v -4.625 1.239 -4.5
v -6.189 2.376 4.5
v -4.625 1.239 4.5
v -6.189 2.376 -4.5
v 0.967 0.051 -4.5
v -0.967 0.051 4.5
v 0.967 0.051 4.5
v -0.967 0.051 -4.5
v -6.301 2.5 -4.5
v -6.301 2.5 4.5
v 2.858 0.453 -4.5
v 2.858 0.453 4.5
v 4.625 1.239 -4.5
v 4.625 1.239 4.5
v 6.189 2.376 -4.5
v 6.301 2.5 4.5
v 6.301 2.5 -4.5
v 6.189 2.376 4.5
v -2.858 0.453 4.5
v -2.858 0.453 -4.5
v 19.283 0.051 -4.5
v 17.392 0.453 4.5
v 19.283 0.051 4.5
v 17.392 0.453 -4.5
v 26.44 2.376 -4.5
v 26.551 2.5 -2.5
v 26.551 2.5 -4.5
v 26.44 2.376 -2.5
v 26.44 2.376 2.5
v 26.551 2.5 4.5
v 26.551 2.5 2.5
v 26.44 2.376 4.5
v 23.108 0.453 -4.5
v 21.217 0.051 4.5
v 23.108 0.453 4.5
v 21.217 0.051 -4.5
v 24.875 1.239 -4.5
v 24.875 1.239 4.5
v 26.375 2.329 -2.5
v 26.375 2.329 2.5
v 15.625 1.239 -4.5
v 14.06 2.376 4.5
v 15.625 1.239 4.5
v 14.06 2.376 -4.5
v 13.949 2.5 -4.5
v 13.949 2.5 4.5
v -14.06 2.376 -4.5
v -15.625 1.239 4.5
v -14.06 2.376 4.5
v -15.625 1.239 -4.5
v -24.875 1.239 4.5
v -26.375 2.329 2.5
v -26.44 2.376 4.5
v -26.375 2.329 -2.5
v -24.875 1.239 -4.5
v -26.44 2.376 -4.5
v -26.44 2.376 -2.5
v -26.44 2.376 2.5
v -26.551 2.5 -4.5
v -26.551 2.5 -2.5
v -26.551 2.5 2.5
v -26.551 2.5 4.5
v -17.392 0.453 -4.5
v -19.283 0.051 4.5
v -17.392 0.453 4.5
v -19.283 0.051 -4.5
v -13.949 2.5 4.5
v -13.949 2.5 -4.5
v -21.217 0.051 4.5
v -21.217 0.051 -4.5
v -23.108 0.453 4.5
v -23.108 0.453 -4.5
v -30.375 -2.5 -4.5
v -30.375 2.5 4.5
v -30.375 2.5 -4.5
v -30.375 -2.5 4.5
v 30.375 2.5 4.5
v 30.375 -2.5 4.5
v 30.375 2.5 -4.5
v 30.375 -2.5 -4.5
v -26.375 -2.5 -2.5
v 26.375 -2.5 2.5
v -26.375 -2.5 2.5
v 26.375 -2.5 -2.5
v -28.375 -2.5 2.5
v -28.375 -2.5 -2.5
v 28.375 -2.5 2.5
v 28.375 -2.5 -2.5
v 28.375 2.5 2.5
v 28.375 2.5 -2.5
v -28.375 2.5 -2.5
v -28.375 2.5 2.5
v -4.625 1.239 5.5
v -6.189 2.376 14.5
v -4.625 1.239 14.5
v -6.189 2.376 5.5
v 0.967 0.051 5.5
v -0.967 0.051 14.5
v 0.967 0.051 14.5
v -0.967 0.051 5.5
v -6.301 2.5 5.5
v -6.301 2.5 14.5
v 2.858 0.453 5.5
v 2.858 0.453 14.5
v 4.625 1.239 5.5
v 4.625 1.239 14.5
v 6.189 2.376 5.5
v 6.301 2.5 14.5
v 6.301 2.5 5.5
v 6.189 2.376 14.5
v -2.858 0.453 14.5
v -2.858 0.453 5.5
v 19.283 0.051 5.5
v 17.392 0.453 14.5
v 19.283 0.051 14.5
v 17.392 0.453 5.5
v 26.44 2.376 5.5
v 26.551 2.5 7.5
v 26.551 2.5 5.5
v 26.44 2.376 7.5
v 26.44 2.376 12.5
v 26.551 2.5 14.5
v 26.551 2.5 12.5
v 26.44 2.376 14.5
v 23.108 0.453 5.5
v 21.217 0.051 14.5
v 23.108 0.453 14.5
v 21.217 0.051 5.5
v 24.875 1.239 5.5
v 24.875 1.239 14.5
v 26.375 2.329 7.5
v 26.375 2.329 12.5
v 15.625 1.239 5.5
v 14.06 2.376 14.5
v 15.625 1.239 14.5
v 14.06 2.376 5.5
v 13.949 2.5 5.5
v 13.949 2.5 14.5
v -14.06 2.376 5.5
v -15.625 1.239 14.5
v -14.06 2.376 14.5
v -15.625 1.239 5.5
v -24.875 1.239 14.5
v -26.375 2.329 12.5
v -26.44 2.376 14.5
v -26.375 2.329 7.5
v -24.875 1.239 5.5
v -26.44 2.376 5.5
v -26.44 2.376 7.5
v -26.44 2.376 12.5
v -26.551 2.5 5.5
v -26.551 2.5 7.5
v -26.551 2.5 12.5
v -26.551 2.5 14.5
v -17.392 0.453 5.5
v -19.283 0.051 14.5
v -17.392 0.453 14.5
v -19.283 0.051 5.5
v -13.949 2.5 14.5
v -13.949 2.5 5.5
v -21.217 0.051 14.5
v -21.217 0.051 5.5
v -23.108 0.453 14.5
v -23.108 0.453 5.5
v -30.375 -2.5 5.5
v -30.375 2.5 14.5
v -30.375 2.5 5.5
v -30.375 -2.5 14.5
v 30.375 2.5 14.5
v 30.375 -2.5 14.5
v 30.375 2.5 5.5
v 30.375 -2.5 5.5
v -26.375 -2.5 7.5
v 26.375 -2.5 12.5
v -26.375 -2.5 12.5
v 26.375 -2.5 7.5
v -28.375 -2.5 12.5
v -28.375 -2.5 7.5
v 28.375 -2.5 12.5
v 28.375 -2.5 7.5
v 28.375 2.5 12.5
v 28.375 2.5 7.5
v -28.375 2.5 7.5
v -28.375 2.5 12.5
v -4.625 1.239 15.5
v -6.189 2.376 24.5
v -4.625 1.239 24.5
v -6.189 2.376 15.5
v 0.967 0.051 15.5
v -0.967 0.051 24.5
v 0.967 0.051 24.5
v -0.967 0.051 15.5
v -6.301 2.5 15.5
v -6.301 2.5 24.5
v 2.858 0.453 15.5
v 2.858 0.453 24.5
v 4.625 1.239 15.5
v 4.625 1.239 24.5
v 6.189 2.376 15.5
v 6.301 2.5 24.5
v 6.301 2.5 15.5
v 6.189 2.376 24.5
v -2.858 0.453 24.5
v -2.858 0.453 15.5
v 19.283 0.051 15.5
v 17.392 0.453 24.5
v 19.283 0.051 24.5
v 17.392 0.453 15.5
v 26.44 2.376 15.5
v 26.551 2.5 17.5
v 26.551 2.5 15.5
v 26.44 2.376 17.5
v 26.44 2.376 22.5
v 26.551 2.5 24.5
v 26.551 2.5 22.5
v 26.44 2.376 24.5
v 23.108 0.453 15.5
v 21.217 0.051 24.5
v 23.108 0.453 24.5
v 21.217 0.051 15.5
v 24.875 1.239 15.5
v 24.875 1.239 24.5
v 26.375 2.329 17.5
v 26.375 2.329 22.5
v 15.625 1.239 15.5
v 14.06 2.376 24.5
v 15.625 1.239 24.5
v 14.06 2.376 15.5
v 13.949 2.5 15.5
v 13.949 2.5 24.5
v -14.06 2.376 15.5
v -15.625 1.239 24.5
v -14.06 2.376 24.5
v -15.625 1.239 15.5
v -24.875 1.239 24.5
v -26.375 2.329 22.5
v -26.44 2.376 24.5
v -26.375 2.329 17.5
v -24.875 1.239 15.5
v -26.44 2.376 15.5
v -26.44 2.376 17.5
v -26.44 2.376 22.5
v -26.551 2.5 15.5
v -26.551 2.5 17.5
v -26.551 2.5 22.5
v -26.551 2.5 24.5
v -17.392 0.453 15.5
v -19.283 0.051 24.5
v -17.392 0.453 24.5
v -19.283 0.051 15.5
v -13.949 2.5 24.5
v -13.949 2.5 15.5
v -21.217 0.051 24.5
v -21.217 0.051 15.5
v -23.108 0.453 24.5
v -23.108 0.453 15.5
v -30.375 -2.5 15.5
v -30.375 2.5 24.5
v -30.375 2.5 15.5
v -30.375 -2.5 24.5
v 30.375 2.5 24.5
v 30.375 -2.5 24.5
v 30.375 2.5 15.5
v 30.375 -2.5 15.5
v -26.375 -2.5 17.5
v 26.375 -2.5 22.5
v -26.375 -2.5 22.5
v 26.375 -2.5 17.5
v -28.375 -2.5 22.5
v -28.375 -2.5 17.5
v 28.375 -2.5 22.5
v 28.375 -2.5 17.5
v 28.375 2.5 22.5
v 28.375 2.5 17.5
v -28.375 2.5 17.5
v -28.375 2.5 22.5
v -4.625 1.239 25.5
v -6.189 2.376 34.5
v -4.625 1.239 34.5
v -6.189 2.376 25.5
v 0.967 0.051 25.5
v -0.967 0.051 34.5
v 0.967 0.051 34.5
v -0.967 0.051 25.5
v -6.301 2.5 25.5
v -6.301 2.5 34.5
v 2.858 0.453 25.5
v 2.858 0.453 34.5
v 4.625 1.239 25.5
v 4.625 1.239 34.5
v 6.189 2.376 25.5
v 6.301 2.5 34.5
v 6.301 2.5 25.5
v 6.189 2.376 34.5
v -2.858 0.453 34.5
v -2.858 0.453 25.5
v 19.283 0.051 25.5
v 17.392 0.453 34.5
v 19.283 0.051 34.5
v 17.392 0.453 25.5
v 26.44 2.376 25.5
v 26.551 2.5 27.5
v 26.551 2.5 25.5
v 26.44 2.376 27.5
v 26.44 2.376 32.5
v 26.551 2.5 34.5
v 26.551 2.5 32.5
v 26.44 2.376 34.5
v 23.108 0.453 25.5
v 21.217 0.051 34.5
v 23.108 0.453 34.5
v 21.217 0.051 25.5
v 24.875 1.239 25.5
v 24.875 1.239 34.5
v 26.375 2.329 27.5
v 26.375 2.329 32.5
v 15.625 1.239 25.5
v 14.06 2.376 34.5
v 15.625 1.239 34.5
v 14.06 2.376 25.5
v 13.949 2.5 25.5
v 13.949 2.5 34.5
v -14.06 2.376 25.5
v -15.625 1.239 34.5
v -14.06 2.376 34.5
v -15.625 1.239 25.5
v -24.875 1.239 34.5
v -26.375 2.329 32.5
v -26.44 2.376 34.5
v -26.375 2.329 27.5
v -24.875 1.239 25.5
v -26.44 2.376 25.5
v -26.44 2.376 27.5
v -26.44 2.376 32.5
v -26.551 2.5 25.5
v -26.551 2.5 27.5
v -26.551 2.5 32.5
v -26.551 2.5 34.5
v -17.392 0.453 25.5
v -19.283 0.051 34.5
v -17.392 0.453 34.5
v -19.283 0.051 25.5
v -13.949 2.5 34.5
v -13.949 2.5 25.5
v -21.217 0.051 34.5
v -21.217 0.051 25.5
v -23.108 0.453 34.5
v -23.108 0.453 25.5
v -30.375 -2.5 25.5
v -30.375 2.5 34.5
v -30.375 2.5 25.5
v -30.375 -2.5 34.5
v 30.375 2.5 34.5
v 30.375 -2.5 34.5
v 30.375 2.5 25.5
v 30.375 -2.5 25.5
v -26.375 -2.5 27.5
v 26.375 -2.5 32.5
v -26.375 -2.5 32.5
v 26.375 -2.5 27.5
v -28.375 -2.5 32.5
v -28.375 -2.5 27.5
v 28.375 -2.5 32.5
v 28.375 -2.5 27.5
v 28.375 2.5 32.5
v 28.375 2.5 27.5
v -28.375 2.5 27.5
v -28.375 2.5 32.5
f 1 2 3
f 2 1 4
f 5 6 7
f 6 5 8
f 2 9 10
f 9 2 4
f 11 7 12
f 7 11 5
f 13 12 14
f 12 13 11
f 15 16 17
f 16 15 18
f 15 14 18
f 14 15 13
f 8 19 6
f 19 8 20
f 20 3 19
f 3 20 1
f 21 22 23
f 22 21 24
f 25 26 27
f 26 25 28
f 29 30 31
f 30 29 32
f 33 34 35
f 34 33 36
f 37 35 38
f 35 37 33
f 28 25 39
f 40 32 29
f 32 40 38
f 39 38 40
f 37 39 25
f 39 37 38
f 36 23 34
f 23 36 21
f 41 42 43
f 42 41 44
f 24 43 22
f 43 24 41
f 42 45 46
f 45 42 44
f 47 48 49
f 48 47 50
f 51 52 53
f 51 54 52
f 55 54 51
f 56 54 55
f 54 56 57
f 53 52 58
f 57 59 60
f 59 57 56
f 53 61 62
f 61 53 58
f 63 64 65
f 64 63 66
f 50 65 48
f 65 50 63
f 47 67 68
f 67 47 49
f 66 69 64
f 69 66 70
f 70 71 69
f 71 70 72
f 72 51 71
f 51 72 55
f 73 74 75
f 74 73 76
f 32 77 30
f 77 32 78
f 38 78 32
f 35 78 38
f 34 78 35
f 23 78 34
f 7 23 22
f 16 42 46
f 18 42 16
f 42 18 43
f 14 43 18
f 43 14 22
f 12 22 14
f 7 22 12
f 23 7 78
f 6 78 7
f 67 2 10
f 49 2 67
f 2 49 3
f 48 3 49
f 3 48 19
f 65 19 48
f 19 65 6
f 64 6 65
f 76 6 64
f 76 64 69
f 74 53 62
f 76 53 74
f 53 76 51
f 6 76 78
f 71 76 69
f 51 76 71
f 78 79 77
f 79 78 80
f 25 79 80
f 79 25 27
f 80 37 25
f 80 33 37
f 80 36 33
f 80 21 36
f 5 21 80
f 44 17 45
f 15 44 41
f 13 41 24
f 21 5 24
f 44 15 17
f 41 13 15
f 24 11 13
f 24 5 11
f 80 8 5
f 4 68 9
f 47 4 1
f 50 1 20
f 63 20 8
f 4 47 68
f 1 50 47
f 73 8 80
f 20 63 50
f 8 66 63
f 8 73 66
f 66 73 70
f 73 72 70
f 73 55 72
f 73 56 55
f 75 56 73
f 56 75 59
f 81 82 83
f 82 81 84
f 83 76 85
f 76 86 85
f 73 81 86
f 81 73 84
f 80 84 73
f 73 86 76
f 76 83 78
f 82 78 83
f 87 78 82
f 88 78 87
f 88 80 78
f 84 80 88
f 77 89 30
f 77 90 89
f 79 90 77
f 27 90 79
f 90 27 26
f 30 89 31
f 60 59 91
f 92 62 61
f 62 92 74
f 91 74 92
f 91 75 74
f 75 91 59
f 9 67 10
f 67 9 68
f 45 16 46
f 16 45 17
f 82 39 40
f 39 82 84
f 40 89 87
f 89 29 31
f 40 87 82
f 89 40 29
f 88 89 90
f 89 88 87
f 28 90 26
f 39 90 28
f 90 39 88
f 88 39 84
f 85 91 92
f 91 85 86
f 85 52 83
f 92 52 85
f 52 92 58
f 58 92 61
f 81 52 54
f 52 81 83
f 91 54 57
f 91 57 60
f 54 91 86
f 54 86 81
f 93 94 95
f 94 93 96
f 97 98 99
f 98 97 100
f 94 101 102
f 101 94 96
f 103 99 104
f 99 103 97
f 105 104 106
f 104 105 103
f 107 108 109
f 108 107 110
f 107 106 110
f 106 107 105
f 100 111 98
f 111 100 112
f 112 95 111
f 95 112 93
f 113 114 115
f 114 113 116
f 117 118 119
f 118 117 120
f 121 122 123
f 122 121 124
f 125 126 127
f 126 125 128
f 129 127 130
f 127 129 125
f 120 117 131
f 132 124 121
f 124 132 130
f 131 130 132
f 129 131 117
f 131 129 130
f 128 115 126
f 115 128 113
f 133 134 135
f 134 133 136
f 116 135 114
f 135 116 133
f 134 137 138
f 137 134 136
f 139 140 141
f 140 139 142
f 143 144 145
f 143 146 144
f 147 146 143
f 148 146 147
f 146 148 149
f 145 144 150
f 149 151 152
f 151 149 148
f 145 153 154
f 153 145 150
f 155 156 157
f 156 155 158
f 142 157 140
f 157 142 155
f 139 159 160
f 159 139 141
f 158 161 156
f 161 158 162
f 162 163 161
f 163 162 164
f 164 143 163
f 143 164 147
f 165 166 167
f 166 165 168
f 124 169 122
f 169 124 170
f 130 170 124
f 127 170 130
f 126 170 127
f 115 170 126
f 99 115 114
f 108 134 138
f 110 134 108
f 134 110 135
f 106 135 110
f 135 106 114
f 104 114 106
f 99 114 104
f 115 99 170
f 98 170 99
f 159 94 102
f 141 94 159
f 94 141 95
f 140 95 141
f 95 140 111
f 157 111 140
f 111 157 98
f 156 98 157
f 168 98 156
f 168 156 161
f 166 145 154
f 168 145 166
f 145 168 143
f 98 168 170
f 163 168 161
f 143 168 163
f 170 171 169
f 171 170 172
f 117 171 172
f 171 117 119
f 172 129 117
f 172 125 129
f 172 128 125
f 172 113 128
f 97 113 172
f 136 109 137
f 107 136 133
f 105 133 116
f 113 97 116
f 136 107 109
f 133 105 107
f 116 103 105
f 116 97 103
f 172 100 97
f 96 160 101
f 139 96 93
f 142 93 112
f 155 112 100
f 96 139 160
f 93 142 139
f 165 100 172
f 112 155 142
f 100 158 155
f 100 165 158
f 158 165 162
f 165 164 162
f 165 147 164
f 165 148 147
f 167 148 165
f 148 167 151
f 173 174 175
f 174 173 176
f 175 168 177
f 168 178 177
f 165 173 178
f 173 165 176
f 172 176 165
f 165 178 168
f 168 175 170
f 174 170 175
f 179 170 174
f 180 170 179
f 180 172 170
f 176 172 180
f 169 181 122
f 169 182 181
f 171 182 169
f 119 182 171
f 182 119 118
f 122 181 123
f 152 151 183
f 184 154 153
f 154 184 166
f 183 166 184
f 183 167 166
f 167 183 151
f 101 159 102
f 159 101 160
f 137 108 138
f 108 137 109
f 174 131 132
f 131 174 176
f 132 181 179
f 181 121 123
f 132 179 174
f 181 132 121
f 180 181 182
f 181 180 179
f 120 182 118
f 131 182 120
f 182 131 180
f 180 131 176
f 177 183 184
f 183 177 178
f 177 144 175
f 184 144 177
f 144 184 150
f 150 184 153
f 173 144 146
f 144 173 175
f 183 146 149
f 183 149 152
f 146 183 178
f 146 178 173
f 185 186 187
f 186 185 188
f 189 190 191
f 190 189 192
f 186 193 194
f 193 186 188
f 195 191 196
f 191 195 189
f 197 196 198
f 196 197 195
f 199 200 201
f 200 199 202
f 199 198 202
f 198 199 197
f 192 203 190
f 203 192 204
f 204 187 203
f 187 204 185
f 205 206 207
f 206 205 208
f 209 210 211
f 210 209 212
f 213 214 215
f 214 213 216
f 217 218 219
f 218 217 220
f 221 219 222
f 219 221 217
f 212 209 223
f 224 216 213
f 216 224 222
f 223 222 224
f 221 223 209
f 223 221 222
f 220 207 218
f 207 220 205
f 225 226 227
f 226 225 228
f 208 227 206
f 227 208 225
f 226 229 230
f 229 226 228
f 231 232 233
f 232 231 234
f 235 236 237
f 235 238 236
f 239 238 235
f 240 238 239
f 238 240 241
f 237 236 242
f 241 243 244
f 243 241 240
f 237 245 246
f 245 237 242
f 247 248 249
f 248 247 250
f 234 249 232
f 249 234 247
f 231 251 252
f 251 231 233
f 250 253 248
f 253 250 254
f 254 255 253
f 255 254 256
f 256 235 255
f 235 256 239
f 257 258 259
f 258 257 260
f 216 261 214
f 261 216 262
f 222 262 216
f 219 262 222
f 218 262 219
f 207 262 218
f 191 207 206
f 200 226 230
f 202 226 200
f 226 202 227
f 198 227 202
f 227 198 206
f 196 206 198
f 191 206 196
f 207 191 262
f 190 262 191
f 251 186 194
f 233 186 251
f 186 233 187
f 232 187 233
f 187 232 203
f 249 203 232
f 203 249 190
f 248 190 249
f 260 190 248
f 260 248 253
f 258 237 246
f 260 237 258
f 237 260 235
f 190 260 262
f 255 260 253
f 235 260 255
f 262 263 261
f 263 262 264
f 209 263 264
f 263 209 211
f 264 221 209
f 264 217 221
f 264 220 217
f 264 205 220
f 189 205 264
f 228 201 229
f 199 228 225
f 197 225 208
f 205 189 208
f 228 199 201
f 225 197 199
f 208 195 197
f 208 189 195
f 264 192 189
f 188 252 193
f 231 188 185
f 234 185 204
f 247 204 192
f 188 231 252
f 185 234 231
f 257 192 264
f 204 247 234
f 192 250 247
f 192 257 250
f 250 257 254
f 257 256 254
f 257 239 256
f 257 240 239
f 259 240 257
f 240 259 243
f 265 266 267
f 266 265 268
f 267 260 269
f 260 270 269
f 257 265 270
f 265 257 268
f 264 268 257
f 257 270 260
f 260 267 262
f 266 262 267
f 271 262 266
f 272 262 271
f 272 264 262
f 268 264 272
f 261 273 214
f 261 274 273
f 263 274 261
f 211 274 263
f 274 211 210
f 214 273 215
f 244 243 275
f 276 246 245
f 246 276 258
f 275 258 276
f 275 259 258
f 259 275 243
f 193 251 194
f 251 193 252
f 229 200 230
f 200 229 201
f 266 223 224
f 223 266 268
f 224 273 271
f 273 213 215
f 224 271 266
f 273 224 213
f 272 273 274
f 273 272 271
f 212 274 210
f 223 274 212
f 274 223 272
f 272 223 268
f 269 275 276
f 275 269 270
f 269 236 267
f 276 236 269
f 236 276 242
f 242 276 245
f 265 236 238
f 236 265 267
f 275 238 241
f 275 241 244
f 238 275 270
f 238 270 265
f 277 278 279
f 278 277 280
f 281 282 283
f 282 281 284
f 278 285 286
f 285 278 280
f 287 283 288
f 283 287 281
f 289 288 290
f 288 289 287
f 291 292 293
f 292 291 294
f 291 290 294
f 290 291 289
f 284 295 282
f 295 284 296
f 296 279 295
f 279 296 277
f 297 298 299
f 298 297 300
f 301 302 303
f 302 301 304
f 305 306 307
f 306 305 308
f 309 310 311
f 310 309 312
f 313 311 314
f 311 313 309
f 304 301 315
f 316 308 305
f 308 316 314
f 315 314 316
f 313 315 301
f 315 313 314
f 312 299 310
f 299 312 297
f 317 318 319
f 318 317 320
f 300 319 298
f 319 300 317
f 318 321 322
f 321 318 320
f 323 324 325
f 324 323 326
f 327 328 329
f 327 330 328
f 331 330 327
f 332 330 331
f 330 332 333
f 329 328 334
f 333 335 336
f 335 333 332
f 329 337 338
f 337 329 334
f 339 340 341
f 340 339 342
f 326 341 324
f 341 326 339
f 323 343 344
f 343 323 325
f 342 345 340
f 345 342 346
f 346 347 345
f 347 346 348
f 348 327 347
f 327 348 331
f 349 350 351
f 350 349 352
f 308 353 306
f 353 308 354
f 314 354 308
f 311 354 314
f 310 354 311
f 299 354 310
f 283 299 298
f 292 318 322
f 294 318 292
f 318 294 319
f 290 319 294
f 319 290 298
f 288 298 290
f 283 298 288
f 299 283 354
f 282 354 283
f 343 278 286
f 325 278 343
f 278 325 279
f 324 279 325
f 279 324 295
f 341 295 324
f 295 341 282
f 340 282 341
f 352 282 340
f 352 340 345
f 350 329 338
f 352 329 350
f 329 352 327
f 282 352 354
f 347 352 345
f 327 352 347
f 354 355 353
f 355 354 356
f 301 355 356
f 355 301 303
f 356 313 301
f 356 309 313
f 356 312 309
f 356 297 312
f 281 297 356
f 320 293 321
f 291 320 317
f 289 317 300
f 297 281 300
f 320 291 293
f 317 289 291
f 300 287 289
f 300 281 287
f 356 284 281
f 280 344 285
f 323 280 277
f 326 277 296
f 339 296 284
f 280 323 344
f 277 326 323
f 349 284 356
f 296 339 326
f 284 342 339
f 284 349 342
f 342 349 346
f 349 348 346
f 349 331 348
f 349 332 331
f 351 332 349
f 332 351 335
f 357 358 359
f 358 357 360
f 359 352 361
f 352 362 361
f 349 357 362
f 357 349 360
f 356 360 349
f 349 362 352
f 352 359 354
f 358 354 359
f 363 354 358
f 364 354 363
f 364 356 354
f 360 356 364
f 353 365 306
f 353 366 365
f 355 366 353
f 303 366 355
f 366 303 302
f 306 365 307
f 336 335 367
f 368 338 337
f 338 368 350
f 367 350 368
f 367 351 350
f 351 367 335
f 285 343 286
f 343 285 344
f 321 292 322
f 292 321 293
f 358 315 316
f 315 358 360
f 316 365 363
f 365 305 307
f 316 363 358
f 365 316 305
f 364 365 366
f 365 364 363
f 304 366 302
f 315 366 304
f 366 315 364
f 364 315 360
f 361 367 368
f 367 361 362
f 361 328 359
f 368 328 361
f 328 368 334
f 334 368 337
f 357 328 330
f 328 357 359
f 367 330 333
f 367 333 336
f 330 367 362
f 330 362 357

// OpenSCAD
// file: vector.scad
function is_nan(x) = x != x ;

// reverse vector
function reverse(v) = [for (i =[len(v)-1:-1:0]) v[i]];
// repeat vector n-times
function repeat(v, n) = [for (i=[0:n*len(v)-1])  v[ i%len(v) ] ];
// allow negative indexes for vector (counting from the back). -1 is last element in array
function v_index(v, n) = is_undef(n) ? len(v) : n < 0 ? len(v)+n : n ;
// cut slice of vertor. `start` included , `end` excluded.
function slice(v, start, end=undef) = [for (i=[start:v_index(v,end)-1]) v[i] ];

function v_add(v, n) = [for (i=[0:len(v)-1]) v[i]+n ];

assert(reverse([1,2,3]) == [3,2,1]);
assert(repeat([1,2],3) ==  [1, 2, 1, 2, 1, 2]);
assert(v_index([1,2,3],-1)==2);
assert(v_index([1,2,3],0) == 0);
assert(v_index([1,2,3],undef)==3);
assert(slice([1,2,3],1,-1)==[2]);
assert(slice([1,2,3],1)==[2,3]);
assert(v_add([1,2,3],1)==[2,3,4]);
// file: 2d.scad
use <vector.scad>

function max_x(a, i = 0) = (len(a) == 0) ? 0 : (i < len(a) - 1) ? max(a[i][0], max_x(a, i+1)) : a[i][0];
function shift_x(a, dx, scaler=1) = [for ( p=a) [scaler*p[0]+dx,p[1]] ];

function scale_poly(a, s=[1,1]) = [for (p=a) [ s[0]*p[0], s[1]*p[1] ]];
function shift_poly(a, d=[0,0]) = [for (p=a) [ d + p ]];

function inverse_x(a) = shift_x(reverse(a),max_x(a),-1);
function mirror_x(a) = shift_x(reverse(a),0,-1);

function symmetry_x(a) = scale_poly(reverse(a),s=[-1,1]);
function symmetry_y(a) = scale_poly(reverse(a),s=[1,-1]);

function concat_with_undefs(prev,next) = 
    len(prev) == 0 ? next : 
        let (prev_last_p = prev[v_index(prev,-1)]) 
        is_undef(prev_last_p[1])  
            ? concat(slice(prev,0,-1),[[prev_last_p[0],next[0][1]]],next) 
            : is_undef(next[0][1]) 
                ? concat(prev, [[next[0][0],prev_last_p[1]]], slice(next,1)) 
                : concat(prev, next) ;

function join_poly(polys, r = [], i=0) = (i < len(polys)) ? 
    join_poly( polys, concat_with_undefs(r,shift_x(polys[i],max_x(r))) ,i+1) : r;

function line_segment(p1,p2) = [p1,[p2[0]-p1[0], p2[1] - p1[1]]];

function ls_slope(ls) = ls[1][1]/ls[1][0] ;

function ls_distance(ls) = sqrt(pow(ls[1][1],2)+pow(ls[1][0],2));

function ls_angle(ls) = 
    let (ss = sign(ls[1][1]) == -1 ? -1 : 1)
    let (sc = sign(ls[1][0]) == -1 ? -1 : 1)
    let (ts = asin(ls[1][1]/ls_distance(ls))) 
    ts != 0 ? ( sc == -1 ? ss * 180 - ts : ts ) : ss*acos(ls[1][0]/ls_distance(ls))  ;
    
assert(ls_angle([[0, 0], [1, 0]])==0);
assert(ls_angle([[0, 0], [-1, 0]])==180);


function angle_diff_cw(a1, a2) = a1 < a2 ? angle_diff_cw(a1+360, a2) : a1 - a2 ;

function angle_diff_ccw(a1, a2) = angle_diff_cw(a2, a1);

function ls_midpoint(ls) = ls[0]+ls[1]/2;

function ls_endpoint(ls) = ls[0]+ls[1];

function line(slope,pt) = [slope, pt[1]-slope*pt[0]];

function l_y(l,x) = l[0]*x + l[1];

function l_segment(l,x1,x2) = line_segment([x1, l_y(l,x1)], [x2, l_y(l,x2)]);

function ls_line(ls) = let(slope=ls_slope(ls)) line(slope,ls[0]);

function ls_perpendicular(ls) = 
    let (l = ls_line(ls)) 
    let (mp = ls_midpoint(ls))
    line(-1/l[0], mp);

function intersect_lines(l1, l2) = 
    let (x = (l2[1]-l1[1])/(l1[0]-l2[0]))
    [x,l_y(l1,x)];

function interpolate_point(ls,fraction) =  [
    ls[0][0] + fraction*ls[1][0],
    ls[0][1] + fraction*ls[1][1]
];


function bezier_curve( a, b, c ) =
    len(a)==3 ? _bezier_curve(a[0],a[1],a[2]) : _bezier_curve(a,b,c);

function _bezier_curve( p1, p2, p3 ) =
    [line_segment(p1,p2), line_segment(p2, p3)];

function curve_point(bc, fraction) =
    interpolate_point(
        line_segment(
            interpolate_point(bc[0],fraction), 
            interpolate_point(bc[1], fraction)), 
        fraction);

function bc_poly(bc, n_points=10) = [for ( f = [0:1/n_points:1]) curve_point(bc, f)] ;

function rake_poly(up_ramp, down_to_valley, n_of_valleys) = 
    join_poly(concat(
        [up_ramp],
        repeat(
            [
                down_to_valley, 
                inverse_x(down_to_valley) // up on other side of the valley
            ], 
            n_of_valleys),
        [inverse_x(up_ramp)] // down ramp
    ));

function arc_point(a,f) = 
    let(c = a[0])
    let(r = a[1])
    let(initial_angle = a[2])
    let(cw = a[3])
    let(range = a[4])
    let (angle = cw ? initial_angle - f * range : initial_angle + f * range)
    c+[r*cos(angle),r*sin(angle)];

function arc_poly(a, n_points=10) = [for ( f = [0:1/n_points:1]) arc_point(a, f)] ;

function arc( a, b, c ) =
    len(a)==3 ? _arc(a[0],a[1],a[2]) : _arc(a,b,c);

function _arc( p1, p2, p3 ) =
    let(ls1 = line_segment(p1,p2))
    let(ls2 = line_segment(p2,p3))
    let(ls3 = line_segment(p1,p3))    
    let(lp1 = ls_perpendicular(ls1))
    let(lp2 = ls_perpendicular(ls2))
    let(lp3 = ls_perpendicular(ls3))
    let(c12 = intersect_lines(lp1,lp2))
    let(c23 = intersect_lines(lp2,lp3))
    let(c13 = intersect_lines(lp1,lp3))
    let(c = !is_nan(c23[0]) ? c23 : !is_nan(c13[0])? c13 : c12 )
    let(r1 = line_segment(c,p1))
    let(r2 = line_segment(c,p2))
    let(r3 = line_segment(c,p3))
    let(r = ls_distance(r1))
    let(a1 = ls_angle(r1))
    let(a2 = ls_angle(r2))
    let(a3 = ls_angle(r3))
    let(cw = angle_diff_cw(a1,a2) < angle_diff_cw(a1,a3))
    let(a_diff = cw ? angle_diff_cw(a1,a3) : angle_diff_ccw(a1,a3))
    [c,r,a1,cw,a_diff];


// linear interpolation or extrapolation (middle by default or any ratio) 
// using 2 points `a` and `b`
function mid(a,b,ratio=.5) = b + (a-b)*ratio ; 

function triangle(a,b,split=.5,height=.5) =
    let (delta = (mid(a,b,height)-b) * [[0,1],[-1,0]])
    let (z = mid(a,b,split) + delta)
    [a,z,b];

assert(arc([0,0],[0,1],[1,1])==arc([[0,0],[0,1],[1,1]]));
assert(bezier_curve([0,0],[0,1],[1,1])==bezier_curve([[0,0],[0,1],[1,1]]));

// echo(arc([0,0],[0,1],[1,1]));
// echo(arc(triangle([0,0],[1,1],.5,-.5)));

assert(arc([0,0],[0,1],[1,1])==arc(triangle([0,0],[1,1],.5,-.5)));
assert(arc([1,1],[1,2],[2,2])==arc(triangle([1,1],[2,2],.5,-.5)));

// echo(arc([0,0],[1,0],[1,1]));
// echo(arc(triangle([0,0],[1,1],.5,.5)));

assert(arc([0,0],[1,0],[1,1])==arc(triangle([0,0],[1,1],.5,.5)));
assert(arc([1,1],[2,1],[2,2])==arc(triangle([1,1],[2,2],.5,.5)));

// echo(arc(triangle([1,0], [-1,0])));
assert(arc(triangle([1,0], [-1,0])) ==  [[0, 0], 1, 0, false, 180]);

// echo(arc(triangle([0,-1], [0,1])));
assert(arc(triangle([0,-1], [0,1])) ==  [[0, 0], 1, -90, false, 180]);

// echo(arc(triangle([0,-1], [0,1],height=-.5)));
assert(arc(triangle([0,-1], [0,1], height=-.5)) ==  [[0, 0], 1, -90, true, 180]);
// main file
use <2d.scad>

d = 18.5;
h_gap = 1.75;
v_gap = 2.5;
n = 3;


base_w=9;
hole_w=5;
hole_d=2;

total_d = (h_gap+d)*n;
hole_offset = total_d/2-3;

e=.05;

module bms_holder(){
    step = h_gap + d;
    module hole(){
        cube([hole_d,(v_gap+e)*2,hole_w], center=true);
    }
    module negative(){
        module cell(){
            cylinder(h=base_w+2*e, d=d, center=true);
        }
        //TODO loop by `n`
        translate([0,0,0] ) cell();
        translate([step,0,0] ) cell();
        translate([-step,0,0] ) cell();
        
    }
    difference(){
        cube([total_d,v_gap*2,base_w], center=true);
        translate([0,d/2,0]) negative();
        #translate([hole_offset,0,0] ) hole();
        translate([-hole_offset,0,0] ) hole();
    }

    // d114 = 42.2; // OD: 1 1/4"
    // d1 = 32.5; // OD: 1"
    // d = d1;   
    // ratio = d/d114;
    // t=3.5;

    // pilot_holes_w = 73;

    // // pcb_thick = 2.5;
    // // pcb_width = 55.3;

    // origin = [0,0];
    // thickness = [0,t];
    // spacer = [3,0];
    // outer_end = [w/2,0];
    // outer_down=outer_end-thickness;
    // down_arc = outer_down-[d,d]/2;
    // down_arc_t = down_arc-[2,0];

    // halfback = concat( [origin, outer_end] , 
    //             arc_poly(arc(triangle(outer_end+spacer, outer_down+spacer,height=-.5))),
    //             arc_poly(arc(triangle(outer_down, down_arc,height=(sqrt(2)-1)/2))),
    //             arc_poly(arc(triangle(down_arc, down_arc_t,height=-.5))),
    //             bc_poly(bezier_curve(triangle(down_arc_t, origin-thickness,.7/ratio, .51*ratio)))
    //         );

    // module countersink(hole_d, hole_h, screw_d, screw_h){
    //     h = hole_h - screw_h ;
    //     union(){
    //         cylinder(d=hole_d,h=h+e,$fn=50);
    //         translate([0,0,h]) cylinder(d1=hole_d, d2=screw_d,h=screw_h,$fn=50);
    //         translate([0,0,hole_h-e]) cylinder(d=screw_d,h=2,$fn=50);
    //     }
    // }

    // screw_len = 5;

    // module holes(zign){
    //     union(){
    //         translate([(outer_end[0])*zign,-screw_len-.5,h/2]) 
    //         rotate([-90,0,0]) 
    //         countersink(2.5,screw_len,6,2.3);
    //         translate([pilot_holes_w/2*zign,-screw_len+e,h/2]) 
    //         rotate([-90,0,0]) 
    //         cylinder(d=1,h=screw_len+e,$fn=50);
    //     }
    // }

    // difference(){
    //     linear_extrude(height=h)
    //     polygon(points=concat(halfback, symmetry_x(halfback)));
    //     union(){
    //         //translate([0,-t-pcb_thick/2,0])
    //         //cube([pcb_width, pcb_thick, 10 ], center=true);
    //         holes(1);
    //         holes(-1);
    //     }
    // }

}


for (i=[0:3])
   translate([0,0,i*10])
     bms_holder();
